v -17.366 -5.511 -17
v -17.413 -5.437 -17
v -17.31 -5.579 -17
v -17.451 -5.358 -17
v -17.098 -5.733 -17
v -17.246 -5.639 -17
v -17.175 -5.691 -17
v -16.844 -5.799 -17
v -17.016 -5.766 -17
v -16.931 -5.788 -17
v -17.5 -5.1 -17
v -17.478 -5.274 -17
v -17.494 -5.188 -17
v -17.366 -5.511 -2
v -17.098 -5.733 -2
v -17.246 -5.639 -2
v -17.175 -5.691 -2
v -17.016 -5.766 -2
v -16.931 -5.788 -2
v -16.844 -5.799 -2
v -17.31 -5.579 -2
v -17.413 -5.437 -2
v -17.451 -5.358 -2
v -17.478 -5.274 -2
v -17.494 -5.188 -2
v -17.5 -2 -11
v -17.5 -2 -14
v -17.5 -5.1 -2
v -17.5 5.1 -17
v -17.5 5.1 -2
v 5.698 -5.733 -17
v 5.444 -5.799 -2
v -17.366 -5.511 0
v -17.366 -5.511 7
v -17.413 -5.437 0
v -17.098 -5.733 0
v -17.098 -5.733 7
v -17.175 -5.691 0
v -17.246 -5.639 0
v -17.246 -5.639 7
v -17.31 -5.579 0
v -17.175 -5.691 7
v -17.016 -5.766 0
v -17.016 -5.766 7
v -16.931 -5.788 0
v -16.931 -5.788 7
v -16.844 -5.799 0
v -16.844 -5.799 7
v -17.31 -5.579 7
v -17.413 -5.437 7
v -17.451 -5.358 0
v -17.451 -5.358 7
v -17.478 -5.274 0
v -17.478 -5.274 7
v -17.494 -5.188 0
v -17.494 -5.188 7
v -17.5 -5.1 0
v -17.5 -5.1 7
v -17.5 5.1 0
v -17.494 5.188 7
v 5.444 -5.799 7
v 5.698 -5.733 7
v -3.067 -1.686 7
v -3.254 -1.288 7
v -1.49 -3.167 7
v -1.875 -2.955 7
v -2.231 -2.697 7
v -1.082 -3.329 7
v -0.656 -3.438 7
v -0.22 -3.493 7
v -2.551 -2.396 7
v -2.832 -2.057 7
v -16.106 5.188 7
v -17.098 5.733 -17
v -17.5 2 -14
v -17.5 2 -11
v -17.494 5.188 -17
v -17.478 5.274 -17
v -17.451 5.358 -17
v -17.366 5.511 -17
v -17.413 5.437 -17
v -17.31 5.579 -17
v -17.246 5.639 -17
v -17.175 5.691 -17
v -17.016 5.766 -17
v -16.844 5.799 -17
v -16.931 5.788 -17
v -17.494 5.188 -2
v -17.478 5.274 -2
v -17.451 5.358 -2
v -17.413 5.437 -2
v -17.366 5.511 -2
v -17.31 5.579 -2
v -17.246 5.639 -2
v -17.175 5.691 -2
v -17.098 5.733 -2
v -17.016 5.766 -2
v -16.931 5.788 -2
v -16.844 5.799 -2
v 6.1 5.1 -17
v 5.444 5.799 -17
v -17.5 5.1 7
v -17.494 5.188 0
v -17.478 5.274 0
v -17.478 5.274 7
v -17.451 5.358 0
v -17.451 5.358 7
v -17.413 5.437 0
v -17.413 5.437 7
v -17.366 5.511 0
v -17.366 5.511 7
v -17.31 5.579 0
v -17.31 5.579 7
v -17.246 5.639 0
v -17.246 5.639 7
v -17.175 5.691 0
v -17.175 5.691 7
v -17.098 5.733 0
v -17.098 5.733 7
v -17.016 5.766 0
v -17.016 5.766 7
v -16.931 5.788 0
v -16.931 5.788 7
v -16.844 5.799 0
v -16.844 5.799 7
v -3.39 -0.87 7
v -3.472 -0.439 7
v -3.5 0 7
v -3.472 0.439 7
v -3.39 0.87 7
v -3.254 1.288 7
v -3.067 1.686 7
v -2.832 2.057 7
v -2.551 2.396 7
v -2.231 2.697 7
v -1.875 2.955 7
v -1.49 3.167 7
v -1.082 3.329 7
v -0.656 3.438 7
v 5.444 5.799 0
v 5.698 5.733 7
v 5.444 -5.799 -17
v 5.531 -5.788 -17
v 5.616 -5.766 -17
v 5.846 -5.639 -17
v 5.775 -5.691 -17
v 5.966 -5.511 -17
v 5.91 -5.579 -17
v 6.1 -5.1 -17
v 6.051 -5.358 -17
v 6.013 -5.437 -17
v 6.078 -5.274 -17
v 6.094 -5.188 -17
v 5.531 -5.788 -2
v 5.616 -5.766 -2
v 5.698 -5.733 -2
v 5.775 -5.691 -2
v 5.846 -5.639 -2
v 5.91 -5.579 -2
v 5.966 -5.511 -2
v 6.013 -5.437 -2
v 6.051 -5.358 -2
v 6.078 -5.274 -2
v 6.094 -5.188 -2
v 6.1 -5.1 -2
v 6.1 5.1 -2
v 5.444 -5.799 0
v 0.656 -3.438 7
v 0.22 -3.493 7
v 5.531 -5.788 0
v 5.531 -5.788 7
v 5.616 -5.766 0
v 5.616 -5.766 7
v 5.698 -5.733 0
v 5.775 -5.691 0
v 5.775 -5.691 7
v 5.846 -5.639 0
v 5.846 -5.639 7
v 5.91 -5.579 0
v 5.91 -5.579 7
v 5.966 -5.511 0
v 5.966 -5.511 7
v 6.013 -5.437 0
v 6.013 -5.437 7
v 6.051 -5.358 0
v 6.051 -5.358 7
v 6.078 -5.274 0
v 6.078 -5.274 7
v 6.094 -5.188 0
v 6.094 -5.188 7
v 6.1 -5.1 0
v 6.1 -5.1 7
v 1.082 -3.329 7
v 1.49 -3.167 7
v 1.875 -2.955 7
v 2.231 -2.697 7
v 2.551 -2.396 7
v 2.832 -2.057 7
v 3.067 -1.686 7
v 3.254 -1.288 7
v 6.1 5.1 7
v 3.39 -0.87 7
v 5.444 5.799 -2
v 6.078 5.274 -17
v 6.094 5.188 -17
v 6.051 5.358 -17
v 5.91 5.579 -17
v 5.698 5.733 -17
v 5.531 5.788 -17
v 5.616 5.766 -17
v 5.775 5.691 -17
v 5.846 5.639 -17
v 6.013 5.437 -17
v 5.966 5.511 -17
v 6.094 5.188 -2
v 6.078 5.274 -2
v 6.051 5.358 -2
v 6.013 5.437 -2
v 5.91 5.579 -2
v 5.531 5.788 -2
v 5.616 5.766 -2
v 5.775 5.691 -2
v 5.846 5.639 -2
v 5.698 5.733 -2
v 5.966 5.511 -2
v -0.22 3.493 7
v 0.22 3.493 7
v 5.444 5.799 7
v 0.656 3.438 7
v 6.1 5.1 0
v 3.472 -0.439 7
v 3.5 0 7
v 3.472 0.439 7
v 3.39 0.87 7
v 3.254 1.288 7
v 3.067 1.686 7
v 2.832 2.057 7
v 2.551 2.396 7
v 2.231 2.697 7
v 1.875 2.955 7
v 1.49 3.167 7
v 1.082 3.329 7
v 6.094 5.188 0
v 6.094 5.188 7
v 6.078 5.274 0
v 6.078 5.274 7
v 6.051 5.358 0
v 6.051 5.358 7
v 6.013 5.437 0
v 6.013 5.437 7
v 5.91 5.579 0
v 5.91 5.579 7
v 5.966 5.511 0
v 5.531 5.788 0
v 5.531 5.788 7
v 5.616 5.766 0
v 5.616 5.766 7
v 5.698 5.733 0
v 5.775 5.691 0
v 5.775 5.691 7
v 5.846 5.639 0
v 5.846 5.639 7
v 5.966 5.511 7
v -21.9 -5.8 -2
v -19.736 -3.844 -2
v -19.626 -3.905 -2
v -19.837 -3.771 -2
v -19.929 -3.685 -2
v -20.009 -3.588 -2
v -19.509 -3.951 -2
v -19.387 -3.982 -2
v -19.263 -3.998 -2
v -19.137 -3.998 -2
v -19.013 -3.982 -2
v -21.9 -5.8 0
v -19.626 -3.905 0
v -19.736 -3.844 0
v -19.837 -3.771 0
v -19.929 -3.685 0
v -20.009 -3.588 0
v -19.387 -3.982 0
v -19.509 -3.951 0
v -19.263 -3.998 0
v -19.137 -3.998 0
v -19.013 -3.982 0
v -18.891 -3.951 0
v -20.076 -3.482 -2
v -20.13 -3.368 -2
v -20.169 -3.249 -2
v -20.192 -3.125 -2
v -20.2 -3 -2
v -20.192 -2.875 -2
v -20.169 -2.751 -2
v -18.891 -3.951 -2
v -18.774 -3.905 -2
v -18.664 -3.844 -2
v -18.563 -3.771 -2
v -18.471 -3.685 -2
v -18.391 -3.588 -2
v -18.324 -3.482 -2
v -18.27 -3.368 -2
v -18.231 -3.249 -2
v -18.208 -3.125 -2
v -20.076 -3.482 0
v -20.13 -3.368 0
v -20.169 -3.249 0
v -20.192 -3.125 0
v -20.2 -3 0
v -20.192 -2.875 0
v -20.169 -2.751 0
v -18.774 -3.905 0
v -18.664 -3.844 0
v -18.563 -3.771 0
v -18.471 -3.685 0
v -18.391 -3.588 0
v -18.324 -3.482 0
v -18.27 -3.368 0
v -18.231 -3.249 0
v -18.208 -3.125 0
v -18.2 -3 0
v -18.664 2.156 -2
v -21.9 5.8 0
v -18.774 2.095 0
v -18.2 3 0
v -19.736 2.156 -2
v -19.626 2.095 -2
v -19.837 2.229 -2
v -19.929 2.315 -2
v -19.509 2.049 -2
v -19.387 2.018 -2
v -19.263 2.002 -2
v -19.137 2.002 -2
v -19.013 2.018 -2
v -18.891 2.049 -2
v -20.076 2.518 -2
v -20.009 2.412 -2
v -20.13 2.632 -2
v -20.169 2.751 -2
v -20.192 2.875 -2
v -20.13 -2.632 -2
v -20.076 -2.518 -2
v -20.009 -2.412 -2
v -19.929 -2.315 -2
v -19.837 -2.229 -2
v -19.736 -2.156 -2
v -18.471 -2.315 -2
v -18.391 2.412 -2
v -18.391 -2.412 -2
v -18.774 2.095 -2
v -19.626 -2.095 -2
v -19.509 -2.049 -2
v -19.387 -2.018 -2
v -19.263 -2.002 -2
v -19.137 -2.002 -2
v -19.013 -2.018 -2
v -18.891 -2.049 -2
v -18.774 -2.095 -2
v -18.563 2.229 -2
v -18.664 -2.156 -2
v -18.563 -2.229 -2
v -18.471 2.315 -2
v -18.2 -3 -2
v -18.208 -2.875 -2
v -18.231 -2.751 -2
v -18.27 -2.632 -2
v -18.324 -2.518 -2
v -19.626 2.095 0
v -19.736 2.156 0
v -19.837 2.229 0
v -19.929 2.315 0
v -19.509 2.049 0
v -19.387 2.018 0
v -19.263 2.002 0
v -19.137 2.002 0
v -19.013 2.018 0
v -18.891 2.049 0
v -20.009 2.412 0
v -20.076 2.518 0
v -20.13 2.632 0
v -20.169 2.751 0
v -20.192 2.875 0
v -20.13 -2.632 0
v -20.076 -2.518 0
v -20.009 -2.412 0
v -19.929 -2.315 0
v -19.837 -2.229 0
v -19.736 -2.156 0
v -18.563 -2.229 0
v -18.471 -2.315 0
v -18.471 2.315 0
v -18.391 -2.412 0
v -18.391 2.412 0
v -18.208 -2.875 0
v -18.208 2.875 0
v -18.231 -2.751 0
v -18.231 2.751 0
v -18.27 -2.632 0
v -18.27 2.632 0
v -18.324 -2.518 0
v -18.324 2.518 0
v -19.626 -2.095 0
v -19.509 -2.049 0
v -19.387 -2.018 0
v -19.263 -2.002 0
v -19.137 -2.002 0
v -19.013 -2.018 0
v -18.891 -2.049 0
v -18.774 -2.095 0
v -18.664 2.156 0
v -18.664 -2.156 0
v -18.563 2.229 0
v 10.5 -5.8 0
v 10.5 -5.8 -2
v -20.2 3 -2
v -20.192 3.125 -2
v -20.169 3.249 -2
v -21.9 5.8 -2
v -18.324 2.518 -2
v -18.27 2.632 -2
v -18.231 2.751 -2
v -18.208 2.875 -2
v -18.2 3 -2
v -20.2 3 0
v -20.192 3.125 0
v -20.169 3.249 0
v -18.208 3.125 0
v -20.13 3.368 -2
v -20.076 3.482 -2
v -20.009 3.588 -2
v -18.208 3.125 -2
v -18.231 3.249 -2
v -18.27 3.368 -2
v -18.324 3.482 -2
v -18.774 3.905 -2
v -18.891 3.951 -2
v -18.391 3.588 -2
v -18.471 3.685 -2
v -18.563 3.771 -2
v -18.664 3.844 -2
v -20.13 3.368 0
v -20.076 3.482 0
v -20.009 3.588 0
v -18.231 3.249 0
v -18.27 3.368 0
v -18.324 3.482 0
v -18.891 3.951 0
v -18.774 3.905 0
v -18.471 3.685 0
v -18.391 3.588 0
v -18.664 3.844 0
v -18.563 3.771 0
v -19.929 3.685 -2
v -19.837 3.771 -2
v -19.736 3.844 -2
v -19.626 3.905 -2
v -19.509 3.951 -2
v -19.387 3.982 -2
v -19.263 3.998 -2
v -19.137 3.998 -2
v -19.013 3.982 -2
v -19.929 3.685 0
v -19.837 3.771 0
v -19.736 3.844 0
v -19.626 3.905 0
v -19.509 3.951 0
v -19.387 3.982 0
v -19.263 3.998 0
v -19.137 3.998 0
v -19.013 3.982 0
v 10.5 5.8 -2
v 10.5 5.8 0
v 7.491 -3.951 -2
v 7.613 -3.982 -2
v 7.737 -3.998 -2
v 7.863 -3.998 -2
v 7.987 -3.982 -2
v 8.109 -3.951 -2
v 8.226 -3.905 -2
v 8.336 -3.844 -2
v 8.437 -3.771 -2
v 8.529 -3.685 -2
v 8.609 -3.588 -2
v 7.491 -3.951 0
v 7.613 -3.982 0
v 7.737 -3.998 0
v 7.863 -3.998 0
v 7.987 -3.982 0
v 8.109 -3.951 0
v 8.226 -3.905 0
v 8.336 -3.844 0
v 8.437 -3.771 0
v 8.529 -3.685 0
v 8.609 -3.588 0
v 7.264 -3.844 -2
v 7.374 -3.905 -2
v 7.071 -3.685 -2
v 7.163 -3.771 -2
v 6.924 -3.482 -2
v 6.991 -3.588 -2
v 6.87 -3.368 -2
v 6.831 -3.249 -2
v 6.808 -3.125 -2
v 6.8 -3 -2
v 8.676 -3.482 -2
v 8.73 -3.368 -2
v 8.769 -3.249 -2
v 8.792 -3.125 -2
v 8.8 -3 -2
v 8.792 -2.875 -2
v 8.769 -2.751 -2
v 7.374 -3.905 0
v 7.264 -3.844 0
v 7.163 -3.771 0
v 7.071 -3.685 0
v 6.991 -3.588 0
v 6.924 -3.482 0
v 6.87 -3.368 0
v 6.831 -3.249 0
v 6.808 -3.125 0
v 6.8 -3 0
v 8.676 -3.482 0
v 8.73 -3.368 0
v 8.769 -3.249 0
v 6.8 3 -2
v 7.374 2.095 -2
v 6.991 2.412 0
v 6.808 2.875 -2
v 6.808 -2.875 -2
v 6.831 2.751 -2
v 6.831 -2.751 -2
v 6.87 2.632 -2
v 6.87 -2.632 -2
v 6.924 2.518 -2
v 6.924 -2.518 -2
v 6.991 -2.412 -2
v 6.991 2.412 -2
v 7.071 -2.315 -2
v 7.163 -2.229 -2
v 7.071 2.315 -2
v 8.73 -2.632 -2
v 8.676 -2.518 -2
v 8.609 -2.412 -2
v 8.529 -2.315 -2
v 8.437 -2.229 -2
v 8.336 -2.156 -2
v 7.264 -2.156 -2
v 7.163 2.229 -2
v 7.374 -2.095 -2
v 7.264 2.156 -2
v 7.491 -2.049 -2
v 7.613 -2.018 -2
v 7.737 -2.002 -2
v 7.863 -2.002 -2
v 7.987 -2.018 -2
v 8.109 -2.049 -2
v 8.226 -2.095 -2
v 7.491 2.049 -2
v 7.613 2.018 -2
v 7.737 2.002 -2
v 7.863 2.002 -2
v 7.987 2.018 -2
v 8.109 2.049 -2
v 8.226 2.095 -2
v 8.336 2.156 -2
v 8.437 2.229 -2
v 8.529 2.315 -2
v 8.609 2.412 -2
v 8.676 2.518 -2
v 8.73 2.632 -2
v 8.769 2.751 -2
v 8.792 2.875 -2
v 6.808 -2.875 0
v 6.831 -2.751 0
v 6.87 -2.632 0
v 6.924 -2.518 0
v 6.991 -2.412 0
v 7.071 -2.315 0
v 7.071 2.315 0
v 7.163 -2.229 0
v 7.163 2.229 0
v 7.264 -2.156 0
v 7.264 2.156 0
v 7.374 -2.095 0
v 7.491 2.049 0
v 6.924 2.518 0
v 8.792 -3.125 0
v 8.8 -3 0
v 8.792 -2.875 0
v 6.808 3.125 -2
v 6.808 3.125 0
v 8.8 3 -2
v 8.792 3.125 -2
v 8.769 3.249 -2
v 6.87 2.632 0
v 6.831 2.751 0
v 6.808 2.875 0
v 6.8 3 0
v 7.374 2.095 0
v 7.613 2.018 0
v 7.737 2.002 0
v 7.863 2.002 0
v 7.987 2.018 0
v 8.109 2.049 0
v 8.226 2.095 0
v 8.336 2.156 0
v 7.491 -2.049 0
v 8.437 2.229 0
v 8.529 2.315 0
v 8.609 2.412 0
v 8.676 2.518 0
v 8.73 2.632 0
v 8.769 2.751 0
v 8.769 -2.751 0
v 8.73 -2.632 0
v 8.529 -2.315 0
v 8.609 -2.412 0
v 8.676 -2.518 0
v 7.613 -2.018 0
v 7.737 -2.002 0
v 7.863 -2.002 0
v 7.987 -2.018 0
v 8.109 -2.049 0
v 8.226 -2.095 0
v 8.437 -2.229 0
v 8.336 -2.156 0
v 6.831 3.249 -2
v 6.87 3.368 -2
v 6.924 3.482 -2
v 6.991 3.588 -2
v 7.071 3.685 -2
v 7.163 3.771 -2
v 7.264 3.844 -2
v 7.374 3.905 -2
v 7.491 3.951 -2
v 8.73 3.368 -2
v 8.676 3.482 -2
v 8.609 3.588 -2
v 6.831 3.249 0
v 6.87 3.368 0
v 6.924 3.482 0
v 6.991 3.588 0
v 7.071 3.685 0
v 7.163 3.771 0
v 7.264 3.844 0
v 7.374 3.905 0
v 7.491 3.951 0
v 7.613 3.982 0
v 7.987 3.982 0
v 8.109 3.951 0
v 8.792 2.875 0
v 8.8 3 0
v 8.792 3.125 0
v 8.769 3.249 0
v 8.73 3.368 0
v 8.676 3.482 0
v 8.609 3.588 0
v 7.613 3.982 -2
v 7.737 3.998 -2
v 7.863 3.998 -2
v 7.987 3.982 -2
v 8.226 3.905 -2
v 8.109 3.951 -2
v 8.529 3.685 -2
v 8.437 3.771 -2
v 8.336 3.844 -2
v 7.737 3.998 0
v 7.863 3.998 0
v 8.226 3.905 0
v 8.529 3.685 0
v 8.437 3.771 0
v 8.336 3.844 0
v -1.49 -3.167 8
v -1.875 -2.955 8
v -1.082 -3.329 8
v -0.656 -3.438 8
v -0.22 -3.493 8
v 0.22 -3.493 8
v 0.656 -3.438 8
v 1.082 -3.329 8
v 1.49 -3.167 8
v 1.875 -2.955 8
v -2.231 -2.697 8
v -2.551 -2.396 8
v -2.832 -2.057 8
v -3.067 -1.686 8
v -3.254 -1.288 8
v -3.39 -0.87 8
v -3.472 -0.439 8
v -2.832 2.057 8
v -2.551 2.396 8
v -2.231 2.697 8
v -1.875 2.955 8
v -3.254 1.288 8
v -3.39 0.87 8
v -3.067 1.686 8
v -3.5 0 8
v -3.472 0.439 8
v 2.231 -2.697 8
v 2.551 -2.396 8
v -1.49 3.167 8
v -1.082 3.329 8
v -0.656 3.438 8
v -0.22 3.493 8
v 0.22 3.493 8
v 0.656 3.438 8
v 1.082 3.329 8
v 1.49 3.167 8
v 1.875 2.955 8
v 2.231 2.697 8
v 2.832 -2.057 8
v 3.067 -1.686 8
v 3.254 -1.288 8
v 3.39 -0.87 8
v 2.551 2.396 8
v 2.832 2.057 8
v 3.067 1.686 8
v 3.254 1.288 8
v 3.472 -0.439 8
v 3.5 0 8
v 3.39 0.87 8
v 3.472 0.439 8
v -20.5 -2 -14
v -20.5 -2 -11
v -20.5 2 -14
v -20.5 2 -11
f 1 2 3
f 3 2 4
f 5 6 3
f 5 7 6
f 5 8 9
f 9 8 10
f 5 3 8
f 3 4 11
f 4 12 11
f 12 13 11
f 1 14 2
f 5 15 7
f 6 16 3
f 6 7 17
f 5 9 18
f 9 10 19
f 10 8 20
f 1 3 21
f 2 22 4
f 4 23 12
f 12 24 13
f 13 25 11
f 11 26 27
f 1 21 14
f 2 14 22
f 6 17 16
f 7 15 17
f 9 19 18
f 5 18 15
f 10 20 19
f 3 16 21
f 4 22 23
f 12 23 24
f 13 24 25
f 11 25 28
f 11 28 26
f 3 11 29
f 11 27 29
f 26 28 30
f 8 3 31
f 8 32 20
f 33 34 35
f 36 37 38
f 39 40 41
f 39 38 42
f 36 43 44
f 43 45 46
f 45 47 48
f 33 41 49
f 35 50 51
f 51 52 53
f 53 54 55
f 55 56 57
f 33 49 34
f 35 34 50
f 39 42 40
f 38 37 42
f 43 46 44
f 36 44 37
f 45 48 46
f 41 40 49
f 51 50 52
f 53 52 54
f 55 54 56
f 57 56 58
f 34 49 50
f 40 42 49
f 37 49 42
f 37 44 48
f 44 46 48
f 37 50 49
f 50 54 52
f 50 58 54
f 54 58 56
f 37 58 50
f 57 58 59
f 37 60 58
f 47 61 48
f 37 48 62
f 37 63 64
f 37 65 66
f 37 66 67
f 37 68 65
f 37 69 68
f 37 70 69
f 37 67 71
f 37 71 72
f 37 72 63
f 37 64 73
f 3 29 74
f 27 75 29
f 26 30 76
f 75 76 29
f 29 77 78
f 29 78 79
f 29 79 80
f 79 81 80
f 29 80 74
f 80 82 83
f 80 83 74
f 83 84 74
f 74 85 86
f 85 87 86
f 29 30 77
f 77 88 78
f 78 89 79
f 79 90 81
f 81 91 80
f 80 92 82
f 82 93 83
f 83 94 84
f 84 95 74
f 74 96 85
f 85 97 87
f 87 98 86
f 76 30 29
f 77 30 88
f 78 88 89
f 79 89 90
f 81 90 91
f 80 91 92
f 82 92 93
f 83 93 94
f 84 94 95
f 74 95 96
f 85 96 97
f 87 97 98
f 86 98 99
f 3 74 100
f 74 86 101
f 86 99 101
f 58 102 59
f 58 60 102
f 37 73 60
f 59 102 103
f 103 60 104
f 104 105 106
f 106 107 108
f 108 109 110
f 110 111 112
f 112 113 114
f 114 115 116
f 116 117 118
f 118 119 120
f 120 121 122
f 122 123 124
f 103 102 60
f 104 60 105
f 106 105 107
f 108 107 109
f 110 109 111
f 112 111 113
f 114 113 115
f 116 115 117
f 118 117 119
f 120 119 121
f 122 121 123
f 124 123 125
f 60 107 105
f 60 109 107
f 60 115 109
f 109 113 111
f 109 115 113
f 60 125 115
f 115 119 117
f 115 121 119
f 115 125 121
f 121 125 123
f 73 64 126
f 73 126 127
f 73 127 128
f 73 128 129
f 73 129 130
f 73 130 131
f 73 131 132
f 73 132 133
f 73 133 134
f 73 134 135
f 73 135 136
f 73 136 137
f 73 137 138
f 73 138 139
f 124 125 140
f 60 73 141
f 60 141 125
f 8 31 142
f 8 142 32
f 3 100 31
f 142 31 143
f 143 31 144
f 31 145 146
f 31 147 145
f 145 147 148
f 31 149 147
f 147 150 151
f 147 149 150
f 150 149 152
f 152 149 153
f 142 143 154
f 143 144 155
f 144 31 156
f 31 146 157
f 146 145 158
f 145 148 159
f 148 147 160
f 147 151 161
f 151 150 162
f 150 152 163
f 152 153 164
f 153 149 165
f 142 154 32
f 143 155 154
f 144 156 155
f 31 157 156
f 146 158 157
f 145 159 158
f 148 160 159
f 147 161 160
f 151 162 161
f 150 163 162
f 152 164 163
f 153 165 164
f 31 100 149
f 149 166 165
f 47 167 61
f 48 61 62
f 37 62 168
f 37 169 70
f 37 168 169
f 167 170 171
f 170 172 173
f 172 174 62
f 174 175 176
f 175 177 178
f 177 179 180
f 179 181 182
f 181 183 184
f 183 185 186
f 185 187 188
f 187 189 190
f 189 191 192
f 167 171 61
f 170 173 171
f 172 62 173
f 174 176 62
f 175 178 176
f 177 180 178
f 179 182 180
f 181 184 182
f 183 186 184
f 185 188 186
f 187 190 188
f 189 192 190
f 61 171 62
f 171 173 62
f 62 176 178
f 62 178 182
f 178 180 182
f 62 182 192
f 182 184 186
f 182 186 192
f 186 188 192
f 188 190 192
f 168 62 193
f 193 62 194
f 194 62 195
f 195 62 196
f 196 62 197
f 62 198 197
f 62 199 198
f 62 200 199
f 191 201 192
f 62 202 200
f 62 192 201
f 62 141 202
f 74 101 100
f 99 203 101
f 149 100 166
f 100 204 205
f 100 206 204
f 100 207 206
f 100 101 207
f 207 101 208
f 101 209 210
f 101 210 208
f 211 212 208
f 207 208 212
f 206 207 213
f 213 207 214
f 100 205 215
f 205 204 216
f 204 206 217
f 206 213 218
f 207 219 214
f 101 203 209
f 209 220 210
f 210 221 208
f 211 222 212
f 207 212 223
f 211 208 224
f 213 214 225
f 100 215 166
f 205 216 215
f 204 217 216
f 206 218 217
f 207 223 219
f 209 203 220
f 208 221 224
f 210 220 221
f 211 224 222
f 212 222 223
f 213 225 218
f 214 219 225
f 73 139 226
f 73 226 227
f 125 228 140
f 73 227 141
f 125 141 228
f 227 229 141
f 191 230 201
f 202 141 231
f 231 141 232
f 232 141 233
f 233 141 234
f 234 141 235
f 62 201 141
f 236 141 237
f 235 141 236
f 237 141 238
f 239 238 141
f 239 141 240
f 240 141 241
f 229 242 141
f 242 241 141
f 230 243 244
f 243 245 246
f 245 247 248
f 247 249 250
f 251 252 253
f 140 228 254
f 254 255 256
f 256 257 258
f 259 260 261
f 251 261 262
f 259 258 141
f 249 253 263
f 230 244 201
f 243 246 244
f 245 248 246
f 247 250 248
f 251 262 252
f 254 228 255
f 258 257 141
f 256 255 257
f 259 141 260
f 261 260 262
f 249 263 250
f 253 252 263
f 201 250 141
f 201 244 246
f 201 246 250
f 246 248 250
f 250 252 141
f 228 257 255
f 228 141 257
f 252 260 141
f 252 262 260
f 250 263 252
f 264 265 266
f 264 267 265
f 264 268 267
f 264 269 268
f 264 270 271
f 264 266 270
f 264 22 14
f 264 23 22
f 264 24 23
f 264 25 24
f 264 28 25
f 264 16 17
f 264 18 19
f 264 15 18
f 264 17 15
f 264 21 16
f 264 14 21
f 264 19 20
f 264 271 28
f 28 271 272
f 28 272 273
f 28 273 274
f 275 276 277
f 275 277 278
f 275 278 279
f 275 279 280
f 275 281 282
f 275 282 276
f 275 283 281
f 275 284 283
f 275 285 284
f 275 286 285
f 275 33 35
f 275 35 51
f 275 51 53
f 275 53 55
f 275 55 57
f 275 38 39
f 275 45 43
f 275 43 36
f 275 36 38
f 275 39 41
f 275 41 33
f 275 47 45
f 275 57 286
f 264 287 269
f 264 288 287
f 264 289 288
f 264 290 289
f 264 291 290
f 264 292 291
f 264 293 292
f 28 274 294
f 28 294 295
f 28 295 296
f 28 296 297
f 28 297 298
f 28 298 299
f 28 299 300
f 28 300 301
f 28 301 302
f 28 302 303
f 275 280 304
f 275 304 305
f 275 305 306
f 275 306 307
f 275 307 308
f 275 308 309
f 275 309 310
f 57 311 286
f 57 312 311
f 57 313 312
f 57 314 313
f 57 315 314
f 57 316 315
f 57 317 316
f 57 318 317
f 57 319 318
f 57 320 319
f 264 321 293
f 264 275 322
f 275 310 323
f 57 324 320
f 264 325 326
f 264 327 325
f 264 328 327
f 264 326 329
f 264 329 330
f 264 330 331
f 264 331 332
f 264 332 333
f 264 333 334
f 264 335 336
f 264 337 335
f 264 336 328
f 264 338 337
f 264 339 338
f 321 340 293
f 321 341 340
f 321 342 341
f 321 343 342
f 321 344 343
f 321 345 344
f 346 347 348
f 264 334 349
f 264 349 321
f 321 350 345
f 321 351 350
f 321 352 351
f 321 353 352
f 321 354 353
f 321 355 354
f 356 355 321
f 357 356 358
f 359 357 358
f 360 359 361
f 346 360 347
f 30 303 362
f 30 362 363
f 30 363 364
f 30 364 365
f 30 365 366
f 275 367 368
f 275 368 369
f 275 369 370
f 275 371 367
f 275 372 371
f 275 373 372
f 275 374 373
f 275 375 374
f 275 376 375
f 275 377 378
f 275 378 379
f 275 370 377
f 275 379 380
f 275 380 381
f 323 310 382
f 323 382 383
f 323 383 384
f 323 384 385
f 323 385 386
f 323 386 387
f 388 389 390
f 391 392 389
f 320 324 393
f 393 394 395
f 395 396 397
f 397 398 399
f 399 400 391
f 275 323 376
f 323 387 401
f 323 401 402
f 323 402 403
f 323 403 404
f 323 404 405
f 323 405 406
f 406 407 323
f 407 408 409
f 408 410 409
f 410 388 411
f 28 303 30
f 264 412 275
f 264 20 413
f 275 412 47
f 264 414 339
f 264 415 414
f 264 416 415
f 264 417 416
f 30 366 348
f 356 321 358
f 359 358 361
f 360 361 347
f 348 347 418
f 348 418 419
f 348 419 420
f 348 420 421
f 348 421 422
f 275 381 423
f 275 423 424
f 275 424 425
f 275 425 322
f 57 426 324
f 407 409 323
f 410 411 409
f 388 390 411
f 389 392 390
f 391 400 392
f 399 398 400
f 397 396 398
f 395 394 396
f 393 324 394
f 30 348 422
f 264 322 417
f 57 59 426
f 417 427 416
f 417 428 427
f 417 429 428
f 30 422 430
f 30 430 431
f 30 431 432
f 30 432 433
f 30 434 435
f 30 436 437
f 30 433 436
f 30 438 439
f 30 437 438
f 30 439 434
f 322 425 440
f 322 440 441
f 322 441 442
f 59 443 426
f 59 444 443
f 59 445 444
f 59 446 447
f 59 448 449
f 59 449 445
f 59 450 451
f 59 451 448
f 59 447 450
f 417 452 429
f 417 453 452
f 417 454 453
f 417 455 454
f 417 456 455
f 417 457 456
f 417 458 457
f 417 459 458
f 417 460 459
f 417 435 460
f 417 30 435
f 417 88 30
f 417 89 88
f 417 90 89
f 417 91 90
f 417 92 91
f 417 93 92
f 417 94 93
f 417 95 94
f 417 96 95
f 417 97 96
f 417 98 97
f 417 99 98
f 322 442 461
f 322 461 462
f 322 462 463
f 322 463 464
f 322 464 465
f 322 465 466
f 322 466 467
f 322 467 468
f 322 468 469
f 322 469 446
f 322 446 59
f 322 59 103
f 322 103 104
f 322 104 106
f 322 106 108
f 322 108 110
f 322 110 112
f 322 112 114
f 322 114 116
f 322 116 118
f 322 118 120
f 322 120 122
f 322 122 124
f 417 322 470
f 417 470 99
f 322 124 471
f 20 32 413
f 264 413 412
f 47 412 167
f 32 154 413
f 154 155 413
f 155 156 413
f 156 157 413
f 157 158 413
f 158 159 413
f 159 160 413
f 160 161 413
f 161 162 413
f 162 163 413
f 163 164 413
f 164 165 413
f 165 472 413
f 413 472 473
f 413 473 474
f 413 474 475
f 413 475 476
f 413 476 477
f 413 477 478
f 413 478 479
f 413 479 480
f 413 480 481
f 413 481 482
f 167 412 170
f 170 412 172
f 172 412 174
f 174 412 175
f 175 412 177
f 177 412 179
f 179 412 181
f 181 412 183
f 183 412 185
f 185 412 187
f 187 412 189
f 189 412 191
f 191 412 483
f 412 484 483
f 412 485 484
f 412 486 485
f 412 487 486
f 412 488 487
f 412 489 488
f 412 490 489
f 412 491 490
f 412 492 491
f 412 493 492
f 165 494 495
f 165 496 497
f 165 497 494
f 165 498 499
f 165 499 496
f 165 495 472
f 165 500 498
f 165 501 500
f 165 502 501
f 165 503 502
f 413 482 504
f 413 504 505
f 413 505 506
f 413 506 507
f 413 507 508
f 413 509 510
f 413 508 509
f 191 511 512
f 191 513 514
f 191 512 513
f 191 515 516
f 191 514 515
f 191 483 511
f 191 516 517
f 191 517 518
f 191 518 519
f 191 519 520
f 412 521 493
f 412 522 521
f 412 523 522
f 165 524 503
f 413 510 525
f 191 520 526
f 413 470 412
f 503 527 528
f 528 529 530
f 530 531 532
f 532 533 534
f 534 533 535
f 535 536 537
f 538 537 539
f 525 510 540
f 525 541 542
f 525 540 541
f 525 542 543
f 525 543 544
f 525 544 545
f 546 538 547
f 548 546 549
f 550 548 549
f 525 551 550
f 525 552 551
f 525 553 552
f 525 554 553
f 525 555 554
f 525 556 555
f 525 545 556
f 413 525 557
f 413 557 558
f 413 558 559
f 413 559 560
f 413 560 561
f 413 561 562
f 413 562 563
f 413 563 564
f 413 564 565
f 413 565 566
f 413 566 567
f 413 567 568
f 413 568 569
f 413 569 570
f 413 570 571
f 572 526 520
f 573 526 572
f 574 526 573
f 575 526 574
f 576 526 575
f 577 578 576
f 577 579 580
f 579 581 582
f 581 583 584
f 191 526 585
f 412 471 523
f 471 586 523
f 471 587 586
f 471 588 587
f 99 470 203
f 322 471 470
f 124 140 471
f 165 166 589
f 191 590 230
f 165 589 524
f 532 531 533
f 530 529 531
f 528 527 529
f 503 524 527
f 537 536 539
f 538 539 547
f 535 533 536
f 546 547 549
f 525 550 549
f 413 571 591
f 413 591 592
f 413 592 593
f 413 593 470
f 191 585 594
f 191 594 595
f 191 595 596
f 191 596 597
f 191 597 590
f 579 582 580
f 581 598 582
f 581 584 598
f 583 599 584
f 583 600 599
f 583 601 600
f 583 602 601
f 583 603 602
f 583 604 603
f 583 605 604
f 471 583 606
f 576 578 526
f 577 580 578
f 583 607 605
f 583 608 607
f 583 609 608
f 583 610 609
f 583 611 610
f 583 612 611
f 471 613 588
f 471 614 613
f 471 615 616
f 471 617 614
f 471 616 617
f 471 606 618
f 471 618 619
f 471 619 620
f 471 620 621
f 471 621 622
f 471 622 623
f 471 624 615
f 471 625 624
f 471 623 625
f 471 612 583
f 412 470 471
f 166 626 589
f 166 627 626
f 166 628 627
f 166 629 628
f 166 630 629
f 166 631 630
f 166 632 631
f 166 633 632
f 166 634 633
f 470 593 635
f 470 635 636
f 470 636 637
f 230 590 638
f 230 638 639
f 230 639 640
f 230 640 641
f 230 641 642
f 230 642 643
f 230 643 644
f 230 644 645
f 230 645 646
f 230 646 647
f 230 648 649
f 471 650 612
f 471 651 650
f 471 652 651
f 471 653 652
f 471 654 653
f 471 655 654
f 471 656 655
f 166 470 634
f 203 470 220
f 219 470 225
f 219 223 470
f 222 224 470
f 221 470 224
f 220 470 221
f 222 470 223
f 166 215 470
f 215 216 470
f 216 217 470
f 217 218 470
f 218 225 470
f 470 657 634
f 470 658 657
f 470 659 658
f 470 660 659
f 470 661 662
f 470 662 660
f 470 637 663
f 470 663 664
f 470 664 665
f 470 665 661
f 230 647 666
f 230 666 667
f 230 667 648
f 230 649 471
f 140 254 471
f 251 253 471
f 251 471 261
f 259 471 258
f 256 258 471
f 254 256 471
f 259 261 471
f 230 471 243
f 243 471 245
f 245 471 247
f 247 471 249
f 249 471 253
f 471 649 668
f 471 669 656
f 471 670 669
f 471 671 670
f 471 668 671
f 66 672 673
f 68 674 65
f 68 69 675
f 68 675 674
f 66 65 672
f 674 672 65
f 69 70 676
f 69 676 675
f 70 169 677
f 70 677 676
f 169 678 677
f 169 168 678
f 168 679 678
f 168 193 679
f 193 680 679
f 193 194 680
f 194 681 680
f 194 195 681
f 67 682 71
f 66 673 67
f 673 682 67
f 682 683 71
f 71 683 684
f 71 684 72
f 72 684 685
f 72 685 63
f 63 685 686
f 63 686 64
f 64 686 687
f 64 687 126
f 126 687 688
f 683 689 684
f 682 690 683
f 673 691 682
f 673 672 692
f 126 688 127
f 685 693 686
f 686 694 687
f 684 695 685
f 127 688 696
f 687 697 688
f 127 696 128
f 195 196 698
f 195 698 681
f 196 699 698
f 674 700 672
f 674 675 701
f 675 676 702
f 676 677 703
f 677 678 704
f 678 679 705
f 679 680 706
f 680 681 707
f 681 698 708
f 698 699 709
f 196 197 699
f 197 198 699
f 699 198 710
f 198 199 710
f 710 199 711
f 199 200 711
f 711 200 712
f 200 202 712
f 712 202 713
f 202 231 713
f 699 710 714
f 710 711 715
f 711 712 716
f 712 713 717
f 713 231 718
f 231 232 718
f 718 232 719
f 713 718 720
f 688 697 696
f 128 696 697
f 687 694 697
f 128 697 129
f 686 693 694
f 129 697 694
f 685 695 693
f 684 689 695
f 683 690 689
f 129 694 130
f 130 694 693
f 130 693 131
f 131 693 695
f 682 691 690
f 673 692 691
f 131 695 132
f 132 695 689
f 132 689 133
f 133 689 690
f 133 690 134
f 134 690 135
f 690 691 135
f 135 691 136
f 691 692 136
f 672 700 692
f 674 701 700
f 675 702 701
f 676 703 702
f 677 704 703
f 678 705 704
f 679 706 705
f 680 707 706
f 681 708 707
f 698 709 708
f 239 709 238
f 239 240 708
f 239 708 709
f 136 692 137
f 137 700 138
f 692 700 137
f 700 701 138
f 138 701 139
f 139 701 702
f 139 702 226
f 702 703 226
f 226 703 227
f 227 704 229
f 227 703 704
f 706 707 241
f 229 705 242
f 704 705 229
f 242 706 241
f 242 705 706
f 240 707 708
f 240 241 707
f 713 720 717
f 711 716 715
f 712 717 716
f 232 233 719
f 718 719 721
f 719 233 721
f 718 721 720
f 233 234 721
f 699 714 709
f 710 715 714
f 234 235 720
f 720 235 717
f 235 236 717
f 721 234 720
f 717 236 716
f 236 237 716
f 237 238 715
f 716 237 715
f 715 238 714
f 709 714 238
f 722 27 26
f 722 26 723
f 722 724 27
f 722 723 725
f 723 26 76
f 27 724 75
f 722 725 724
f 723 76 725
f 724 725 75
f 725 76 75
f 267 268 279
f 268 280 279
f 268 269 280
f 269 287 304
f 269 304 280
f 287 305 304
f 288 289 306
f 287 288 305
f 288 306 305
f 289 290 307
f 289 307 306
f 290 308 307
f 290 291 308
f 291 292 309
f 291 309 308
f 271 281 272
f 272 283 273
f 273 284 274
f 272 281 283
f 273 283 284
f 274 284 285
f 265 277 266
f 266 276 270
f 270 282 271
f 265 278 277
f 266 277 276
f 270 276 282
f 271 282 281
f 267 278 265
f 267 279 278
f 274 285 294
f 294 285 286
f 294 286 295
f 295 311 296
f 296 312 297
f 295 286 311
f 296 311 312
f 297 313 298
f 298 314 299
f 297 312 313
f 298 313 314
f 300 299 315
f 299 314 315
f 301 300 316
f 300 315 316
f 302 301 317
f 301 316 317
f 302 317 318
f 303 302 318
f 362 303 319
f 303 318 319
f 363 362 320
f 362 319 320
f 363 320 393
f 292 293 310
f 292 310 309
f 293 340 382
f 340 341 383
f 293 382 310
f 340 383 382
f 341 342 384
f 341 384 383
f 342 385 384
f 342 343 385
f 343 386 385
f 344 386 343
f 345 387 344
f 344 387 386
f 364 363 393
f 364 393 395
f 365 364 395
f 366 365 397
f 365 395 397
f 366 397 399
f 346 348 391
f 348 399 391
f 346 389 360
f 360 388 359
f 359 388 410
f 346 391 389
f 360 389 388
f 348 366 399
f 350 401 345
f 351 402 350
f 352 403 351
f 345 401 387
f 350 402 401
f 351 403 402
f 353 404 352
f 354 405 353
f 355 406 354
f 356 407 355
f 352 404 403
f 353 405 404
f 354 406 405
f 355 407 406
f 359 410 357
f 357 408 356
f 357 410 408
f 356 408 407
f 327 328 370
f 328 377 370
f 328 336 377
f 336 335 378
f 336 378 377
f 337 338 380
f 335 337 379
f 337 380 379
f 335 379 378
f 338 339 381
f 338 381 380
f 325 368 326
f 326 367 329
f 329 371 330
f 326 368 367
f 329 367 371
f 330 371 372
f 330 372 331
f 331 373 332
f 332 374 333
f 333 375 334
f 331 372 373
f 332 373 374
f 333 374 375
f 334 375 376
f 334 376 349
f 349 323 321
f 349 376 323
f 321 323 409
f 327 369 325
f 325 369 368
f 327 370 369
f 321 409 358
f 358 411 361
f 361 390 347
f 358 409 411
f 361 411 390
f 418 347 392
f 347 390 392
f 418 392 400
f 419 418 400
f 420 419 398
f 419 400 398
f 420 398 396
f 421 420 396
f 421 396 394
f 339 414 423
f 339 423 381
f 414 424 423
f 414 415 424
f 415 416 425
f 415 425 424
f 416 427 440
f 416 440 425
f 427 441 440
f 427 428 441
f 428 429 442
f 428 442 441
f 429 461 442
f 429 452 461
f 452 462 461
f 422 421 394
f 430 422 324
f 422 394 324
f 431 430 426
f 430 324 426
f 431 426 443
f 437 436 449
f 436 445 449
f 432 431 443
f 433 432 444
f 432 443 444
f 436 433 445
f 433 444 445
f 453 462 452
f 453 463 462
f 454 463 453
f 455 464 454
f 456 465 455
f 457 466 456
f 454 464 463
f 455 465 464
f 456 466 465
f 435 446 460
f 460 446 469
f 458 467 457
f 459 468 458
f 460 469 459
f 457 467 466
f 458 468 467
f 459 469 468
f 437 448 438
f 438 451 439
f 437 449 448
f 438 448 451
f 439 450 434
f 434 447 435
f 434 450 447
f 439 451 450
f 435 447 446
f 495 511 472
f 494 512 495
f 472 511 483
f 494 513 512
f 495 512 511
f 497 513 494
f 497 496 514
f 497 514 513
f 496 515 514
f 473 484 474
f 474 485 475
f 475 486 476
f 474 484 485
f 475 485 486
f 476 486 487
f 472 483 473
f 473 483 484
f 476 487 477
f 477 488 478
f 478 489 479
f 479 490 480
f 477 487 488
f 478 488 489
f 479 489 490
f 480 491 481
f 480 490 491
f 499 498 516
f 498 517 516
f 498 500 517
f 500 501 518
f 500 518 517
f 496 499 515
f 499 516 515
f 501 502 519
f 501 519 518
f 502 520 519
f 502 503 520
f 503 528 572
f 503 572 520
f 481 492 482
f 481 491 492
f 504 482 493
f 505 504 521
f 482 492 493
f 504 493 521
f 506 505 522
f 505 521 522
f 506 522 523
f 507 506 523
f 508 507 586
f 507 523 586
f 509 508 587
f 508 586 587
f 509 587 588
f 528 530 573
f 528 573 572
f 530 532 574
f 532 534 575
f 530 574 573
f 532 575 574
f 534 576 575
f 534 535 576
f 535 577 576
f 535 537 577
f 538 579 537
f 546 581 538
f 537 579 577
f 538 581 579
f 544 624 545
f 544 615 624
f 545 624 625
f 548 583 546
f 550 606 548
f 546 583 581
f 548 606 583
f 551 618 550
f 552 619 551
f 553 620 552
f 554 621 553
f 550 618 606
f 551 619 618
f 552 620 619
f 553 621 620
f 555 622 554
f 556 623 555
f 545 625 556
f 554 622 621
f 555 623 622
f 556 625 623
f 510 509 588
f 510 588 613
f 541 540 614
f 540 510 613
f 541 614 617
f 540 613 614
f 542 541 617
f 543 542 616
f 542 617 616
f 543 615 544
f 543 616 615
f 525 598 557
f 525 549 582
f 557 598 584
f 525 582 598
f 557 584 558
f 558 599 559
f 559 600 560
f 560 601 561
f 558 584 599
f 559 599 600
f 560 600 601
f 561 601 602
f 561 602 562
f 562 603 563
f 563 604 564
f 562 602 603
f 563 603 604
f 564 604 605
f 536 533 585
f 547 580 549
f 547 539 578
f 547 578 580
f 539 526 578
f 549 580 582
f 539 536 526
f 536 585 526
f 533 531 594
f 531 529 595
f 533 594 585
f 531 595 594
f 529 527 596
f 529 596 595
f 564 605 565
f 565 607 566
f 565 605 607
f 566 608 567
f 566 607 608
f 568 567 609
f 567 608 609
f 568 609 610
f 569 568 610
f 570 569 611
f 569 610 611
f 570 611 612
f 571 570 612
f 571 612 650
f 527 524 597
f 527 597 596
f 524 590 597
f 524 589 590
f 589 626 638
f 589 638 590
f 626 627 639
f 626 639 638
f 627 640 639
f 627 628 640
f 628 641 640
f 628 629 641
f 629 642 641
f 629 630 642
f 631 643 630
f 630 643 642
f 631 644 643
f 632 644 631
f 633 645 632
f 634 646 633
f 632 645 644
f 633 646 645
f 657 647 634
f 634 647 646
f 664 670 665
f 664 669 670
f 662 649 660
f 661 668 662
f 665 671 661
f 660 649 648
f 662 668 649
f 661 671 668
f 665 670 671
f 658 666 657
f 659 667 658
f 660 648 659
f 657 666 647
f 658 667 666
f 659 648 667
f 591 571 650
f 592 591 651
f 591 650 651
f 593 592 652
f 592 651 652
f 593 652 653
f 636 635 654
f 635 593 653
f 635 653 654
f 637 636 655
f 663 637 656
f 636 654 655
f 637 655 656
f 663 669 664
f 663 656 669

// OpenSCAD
$fn = 50;

difference() {
	union() {
		translate(v = [-5.700000000000001, 0, -17]) {
			hull() {
				translate(v = [-11.100000000000001, 5.1, 0]) {
					cylinder(h = 24, r = 0.7);
				}
				translate(v = [11.100000000000001, 5.1, 0]) {
					cylinder(h = 24, r = 0.7);
				}
				translate(v = [-11.100000000000001, -5.1, 0]) {
					cylinder(h = 24, r = 0.7);
				}
				translate(v = [11.100000000000001, -5.1, 0]) {
					cylinder(h = 24, r = 0.7);
				}
			}
		}
		translate(v = [-21.9, -5.8, -2]) {
			cube(size = [32.4, 11.6, 2]);
		}
		translate(v = [0, 0, 7.0]) {
			cylinder(h = 1, r = 3.5);
		}
		translate(v = [-20.5, -2.0, -14]) {
			cube(size = [4, 4, 3]);
		}
	}
	union() {
		translate(v = [-19.2, -3, -4]) {
			cylinder(h = 5, r = 1.0);
		}
		translate(v = [-19.2, 3, -4]) {
			cylinder(h = 5, r = 1.0);
		}
		translate(v = [7.8, -3, -4]) {
			cylinder(h = 5, r = 1.0);
		}
		translate(v = [7.8, 3, -4]) {
			cylinder(h = 5, r = 1.0);
		}
	}
}
